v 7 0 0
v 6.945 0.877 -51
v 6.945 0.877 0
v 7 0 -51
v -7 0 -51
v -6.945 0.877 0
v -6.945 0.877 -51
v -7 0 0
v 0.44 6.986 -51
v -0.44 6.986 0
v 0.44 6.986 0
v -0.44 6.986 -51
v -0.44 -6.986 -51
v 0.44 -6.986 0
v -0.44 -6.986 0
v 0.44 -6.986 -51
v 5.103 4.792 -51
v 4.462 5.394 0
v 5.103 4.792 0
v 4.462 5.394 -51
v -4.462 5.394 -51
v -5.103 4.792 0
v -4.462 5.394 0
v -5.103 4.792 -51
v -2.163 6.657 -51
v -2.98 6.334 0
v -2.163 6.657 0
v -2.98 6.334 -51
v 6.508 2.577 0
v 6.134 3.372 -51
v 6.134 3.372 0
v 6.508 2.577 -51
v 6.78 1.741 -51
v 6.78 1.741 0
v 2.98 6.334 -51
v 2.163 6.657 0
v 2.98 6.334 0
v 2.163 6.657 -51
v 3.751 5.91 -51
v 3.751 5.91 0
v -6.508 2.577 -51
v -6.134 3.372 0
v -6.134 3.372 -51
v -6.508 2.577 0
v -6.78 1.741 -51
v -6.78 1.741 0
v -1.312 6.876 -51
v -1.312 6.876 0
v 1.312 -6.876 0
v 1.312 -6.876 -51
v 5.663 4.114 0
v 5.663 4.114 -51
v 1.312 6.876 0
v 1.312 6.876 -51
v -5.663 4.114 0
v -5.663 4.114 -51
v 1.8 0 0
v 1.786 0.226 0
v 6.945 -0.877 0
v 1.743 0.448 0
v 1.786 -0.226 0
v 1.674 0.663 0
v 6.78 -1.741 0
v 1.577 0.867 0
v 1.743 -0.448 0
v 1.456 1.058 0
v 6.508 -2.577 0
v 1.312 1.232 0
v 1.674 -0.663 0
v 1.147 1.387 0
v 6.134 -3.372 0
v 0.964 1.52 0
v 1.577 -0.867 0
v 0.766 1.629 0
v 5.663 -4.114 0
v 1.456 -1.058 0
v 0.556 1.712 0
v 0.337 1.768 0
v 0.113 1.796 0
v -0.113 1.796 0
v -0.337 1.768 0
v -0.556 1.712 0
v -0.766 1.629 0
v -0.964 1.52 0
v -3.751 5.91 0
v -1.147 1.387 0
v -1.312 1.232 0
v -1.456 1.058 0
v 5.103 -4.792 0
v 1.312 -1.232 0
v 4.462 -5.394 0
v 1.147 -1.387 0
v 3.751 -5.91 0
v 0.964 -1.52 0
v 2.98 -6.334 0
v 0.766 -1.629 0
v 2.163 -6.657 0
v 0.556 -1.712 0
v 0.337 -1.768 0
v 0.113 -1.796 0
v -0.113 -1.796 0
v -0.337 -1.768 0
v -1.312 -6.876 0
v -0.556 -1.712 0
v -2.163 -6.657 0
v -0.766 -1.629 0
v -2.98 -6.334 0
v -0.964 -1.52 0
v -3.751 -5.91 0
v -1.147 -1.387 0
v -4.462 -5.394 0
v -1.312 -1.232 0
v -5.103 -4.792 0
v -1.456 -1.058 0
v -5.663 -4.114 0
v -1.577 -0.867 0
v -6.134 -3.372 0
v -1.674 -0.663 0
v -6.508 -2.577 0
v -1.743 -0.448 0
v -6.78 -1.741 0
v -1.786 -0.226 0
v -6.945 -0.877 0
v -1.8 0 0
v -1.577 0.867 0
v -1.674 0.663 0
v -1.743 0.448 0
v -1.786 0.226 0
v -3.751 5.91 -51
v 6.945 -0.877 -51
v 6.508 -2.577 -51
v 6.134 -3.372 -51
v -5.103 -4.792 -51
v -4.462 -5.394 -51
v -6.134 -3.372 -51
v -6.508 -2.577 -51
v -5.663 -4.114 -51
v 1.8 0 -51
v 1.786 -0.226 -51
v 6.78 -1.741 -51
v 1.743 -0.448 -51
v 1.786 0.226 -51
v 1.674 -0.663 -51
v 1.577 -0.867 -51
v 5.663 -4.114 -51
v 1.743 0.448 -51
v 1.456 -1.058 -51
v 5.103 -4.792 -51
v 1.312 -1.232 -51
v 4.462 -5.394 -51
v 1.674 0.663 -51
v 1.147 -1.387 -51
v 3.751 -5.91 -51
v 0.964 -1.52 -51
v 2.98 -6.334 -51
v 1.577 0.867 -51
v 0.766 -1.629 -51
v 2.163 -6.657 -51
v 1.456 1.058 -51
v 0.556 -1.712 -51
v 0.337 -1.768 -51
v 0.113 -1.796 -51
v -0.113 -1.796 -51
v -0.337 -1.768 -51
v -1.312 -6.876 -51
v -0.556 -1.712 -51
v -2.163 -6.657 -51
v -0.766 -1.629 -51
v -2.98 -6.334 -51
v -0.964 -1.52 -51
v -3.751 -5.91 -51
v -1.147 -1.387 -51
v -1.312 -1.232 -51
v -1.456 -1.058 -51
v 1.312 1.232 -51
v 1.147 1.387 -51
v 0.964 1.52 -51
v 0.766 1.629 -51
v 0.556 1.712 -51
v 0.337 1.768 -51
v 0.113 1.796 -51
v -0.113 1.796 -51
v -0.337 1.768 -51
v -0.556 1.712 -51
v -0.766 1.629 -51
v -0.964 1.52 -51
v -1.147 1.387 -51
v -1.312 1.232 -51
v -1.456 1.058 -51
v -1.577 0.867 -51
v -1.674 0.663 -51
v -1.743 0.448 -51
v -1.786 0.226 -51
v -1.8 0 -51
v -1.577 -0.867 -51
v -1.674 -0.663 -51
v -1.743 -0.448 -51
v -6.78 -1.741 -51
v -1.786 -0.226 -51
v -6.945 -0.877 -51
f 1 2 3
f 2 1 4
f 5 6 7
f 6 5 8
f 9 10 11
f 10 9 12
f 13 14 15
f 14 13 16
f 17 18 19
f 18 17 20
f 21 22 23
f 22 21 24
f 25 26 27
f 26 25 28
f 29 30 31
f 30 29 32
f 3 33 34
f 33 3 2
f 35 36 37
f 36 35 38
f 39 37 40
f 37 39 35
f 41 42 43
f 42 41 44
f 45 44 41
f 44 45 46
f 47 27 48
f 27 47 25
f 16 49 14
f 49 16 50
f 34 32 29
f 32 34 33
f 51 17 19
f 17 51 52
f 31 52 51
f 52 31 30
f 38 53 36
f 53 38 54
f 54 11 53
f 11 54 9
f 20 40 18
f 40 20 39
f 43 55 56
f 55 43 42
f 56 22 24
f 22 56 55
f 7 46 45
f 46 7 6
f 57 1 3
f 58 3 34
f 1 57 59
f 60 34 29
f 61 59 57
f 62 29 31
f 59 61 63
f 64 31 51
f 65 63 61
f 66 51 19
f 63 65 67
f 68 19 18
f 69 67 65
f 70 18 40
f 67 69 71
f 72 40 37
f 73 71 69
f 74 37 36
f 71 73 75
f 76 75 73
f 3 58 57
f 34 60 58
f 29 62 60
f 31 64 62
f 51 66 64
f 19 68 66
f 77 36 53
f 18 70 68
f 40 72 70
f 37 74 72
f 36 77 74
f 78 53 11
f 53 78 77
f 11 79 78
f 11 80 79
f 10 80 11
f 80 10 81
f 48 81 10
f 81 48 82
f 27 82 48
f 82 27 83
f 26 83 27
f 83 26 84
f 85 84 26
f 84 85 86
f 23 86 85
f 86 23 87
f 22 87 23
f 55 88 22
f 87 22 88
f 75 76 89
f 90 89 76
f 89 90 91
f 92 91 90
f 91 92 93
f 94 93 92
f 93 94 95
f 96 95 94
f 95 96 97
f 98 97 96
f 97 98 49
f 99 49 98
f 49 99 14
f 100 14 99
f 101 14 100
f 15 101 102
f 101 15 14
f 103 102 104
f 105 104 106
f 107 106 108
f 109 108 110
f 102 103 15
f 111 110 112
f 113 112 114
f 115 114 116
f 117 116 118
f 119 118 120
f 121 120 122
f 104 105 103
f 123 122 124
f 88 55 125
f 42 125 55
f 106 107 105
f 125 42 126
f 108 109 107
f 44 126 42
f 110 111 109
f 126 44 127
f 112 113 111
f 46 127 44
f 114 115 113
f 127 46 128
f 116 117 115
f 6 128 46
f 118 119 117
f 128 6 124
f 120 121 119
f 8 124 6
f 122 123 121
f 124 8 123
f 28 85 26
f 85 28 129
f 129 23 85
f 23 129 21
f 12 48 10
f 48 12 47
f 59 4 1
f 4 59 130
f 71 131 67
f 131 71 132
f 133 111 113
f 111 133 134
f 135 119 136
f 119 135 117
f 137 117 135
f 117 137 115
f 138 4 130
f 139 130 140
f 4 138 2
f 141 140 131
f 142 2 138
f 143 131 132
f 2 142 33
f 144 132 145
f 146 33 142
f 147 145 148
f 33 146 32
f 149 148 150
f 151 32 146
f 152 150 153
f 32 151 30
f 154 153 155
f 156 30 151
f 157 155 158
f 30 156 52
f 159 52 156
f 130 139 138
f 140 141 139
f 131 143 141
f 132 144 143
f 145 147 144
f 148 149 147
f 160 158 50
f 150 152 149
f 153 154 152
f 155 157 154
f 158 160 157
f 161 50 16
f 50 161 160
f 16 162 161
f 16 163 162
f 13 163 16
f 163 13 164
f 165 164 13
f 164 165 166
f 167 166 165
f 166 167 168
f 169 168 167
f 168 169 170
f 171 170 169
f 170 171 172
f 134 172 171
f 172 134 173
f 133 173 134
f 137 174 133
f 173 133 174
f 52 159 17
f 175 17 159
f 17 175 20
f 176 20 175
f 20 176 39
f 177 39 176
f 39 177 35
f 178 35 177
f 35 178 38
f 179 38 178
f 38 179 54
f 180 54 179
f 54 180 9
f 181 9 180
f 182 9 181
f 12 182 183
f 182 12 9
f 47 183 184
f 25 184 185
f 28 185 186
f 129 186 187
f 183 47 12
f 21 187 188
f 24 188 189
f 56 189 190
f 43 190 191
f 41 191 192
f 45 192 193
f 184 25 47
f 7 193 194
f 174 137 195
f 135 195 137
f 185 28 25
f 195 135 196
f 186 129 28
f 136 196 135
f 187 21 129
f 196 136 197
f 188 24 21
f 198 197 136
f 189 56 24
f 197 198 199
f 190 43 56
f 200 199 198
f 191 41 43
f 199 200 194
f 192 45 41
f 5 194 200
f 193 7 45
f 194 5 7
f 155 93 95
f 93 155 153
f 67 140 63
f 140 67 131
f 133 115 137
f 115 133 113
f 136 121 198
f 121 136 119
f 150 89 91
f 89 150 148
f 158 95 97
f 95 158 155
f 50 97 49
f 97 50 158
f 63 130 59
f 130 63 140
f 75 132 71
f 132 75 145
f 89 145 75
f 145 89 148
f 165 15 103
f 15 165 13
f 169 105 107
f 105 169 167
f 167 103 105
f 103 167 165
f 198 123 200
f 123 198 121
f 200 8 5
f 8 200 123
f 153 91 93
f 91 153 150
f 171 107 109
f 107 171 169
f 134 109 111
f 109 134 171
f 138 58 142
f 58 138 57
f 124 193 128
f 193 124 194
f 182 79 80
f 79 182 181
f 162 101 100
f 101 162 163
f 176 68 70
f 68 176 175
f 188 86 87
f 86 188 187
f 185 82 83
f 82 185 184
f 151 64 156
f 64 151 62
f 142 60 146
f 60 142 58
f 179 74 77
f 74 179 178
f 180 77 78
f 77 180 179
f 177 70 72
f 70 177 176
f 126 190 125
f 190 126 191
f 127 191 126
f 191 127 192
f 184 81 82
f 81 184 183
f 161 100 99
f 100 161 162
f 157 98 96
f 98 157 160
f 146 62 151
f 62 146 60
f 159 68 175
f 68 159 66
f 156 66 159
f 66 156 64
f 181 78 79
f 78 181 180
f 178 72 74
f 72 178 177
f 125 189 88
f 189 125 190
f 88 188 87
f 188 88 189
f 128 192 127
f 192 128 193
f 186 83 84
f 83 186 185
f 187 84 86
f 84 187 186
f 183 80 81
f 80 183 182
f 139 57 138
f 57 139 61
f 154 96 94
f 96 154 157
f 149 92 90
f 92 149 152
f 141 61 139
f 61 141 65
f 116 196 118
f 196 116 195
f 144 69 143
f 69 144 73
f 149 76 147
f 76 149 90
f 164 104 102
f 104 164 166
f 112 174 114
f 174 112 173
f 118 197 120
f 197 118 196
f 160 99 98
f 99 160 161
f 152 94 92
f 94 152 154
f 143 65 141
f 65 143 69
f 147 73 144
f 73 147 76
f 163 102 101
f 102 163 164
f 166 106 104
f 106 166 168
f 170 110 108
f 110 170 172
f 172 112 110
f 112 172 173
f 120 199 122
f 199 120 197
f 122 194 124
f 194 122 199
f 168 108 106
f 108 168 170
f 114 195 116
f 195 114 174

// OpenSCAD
$fn = 50;


difference() {
	union() {
		translate(v = [0, 0, -51.0000000000]) {
			cylinder(h = 51, r = 7.0000000000);
		}
		cylinder(h = 0, r = 17.0000000000);
	}
	union() {
		#translate(v = [0, 0, -51]) {
			cylinder(h = 51, r = 1.8000000000);
		}
	}
}
